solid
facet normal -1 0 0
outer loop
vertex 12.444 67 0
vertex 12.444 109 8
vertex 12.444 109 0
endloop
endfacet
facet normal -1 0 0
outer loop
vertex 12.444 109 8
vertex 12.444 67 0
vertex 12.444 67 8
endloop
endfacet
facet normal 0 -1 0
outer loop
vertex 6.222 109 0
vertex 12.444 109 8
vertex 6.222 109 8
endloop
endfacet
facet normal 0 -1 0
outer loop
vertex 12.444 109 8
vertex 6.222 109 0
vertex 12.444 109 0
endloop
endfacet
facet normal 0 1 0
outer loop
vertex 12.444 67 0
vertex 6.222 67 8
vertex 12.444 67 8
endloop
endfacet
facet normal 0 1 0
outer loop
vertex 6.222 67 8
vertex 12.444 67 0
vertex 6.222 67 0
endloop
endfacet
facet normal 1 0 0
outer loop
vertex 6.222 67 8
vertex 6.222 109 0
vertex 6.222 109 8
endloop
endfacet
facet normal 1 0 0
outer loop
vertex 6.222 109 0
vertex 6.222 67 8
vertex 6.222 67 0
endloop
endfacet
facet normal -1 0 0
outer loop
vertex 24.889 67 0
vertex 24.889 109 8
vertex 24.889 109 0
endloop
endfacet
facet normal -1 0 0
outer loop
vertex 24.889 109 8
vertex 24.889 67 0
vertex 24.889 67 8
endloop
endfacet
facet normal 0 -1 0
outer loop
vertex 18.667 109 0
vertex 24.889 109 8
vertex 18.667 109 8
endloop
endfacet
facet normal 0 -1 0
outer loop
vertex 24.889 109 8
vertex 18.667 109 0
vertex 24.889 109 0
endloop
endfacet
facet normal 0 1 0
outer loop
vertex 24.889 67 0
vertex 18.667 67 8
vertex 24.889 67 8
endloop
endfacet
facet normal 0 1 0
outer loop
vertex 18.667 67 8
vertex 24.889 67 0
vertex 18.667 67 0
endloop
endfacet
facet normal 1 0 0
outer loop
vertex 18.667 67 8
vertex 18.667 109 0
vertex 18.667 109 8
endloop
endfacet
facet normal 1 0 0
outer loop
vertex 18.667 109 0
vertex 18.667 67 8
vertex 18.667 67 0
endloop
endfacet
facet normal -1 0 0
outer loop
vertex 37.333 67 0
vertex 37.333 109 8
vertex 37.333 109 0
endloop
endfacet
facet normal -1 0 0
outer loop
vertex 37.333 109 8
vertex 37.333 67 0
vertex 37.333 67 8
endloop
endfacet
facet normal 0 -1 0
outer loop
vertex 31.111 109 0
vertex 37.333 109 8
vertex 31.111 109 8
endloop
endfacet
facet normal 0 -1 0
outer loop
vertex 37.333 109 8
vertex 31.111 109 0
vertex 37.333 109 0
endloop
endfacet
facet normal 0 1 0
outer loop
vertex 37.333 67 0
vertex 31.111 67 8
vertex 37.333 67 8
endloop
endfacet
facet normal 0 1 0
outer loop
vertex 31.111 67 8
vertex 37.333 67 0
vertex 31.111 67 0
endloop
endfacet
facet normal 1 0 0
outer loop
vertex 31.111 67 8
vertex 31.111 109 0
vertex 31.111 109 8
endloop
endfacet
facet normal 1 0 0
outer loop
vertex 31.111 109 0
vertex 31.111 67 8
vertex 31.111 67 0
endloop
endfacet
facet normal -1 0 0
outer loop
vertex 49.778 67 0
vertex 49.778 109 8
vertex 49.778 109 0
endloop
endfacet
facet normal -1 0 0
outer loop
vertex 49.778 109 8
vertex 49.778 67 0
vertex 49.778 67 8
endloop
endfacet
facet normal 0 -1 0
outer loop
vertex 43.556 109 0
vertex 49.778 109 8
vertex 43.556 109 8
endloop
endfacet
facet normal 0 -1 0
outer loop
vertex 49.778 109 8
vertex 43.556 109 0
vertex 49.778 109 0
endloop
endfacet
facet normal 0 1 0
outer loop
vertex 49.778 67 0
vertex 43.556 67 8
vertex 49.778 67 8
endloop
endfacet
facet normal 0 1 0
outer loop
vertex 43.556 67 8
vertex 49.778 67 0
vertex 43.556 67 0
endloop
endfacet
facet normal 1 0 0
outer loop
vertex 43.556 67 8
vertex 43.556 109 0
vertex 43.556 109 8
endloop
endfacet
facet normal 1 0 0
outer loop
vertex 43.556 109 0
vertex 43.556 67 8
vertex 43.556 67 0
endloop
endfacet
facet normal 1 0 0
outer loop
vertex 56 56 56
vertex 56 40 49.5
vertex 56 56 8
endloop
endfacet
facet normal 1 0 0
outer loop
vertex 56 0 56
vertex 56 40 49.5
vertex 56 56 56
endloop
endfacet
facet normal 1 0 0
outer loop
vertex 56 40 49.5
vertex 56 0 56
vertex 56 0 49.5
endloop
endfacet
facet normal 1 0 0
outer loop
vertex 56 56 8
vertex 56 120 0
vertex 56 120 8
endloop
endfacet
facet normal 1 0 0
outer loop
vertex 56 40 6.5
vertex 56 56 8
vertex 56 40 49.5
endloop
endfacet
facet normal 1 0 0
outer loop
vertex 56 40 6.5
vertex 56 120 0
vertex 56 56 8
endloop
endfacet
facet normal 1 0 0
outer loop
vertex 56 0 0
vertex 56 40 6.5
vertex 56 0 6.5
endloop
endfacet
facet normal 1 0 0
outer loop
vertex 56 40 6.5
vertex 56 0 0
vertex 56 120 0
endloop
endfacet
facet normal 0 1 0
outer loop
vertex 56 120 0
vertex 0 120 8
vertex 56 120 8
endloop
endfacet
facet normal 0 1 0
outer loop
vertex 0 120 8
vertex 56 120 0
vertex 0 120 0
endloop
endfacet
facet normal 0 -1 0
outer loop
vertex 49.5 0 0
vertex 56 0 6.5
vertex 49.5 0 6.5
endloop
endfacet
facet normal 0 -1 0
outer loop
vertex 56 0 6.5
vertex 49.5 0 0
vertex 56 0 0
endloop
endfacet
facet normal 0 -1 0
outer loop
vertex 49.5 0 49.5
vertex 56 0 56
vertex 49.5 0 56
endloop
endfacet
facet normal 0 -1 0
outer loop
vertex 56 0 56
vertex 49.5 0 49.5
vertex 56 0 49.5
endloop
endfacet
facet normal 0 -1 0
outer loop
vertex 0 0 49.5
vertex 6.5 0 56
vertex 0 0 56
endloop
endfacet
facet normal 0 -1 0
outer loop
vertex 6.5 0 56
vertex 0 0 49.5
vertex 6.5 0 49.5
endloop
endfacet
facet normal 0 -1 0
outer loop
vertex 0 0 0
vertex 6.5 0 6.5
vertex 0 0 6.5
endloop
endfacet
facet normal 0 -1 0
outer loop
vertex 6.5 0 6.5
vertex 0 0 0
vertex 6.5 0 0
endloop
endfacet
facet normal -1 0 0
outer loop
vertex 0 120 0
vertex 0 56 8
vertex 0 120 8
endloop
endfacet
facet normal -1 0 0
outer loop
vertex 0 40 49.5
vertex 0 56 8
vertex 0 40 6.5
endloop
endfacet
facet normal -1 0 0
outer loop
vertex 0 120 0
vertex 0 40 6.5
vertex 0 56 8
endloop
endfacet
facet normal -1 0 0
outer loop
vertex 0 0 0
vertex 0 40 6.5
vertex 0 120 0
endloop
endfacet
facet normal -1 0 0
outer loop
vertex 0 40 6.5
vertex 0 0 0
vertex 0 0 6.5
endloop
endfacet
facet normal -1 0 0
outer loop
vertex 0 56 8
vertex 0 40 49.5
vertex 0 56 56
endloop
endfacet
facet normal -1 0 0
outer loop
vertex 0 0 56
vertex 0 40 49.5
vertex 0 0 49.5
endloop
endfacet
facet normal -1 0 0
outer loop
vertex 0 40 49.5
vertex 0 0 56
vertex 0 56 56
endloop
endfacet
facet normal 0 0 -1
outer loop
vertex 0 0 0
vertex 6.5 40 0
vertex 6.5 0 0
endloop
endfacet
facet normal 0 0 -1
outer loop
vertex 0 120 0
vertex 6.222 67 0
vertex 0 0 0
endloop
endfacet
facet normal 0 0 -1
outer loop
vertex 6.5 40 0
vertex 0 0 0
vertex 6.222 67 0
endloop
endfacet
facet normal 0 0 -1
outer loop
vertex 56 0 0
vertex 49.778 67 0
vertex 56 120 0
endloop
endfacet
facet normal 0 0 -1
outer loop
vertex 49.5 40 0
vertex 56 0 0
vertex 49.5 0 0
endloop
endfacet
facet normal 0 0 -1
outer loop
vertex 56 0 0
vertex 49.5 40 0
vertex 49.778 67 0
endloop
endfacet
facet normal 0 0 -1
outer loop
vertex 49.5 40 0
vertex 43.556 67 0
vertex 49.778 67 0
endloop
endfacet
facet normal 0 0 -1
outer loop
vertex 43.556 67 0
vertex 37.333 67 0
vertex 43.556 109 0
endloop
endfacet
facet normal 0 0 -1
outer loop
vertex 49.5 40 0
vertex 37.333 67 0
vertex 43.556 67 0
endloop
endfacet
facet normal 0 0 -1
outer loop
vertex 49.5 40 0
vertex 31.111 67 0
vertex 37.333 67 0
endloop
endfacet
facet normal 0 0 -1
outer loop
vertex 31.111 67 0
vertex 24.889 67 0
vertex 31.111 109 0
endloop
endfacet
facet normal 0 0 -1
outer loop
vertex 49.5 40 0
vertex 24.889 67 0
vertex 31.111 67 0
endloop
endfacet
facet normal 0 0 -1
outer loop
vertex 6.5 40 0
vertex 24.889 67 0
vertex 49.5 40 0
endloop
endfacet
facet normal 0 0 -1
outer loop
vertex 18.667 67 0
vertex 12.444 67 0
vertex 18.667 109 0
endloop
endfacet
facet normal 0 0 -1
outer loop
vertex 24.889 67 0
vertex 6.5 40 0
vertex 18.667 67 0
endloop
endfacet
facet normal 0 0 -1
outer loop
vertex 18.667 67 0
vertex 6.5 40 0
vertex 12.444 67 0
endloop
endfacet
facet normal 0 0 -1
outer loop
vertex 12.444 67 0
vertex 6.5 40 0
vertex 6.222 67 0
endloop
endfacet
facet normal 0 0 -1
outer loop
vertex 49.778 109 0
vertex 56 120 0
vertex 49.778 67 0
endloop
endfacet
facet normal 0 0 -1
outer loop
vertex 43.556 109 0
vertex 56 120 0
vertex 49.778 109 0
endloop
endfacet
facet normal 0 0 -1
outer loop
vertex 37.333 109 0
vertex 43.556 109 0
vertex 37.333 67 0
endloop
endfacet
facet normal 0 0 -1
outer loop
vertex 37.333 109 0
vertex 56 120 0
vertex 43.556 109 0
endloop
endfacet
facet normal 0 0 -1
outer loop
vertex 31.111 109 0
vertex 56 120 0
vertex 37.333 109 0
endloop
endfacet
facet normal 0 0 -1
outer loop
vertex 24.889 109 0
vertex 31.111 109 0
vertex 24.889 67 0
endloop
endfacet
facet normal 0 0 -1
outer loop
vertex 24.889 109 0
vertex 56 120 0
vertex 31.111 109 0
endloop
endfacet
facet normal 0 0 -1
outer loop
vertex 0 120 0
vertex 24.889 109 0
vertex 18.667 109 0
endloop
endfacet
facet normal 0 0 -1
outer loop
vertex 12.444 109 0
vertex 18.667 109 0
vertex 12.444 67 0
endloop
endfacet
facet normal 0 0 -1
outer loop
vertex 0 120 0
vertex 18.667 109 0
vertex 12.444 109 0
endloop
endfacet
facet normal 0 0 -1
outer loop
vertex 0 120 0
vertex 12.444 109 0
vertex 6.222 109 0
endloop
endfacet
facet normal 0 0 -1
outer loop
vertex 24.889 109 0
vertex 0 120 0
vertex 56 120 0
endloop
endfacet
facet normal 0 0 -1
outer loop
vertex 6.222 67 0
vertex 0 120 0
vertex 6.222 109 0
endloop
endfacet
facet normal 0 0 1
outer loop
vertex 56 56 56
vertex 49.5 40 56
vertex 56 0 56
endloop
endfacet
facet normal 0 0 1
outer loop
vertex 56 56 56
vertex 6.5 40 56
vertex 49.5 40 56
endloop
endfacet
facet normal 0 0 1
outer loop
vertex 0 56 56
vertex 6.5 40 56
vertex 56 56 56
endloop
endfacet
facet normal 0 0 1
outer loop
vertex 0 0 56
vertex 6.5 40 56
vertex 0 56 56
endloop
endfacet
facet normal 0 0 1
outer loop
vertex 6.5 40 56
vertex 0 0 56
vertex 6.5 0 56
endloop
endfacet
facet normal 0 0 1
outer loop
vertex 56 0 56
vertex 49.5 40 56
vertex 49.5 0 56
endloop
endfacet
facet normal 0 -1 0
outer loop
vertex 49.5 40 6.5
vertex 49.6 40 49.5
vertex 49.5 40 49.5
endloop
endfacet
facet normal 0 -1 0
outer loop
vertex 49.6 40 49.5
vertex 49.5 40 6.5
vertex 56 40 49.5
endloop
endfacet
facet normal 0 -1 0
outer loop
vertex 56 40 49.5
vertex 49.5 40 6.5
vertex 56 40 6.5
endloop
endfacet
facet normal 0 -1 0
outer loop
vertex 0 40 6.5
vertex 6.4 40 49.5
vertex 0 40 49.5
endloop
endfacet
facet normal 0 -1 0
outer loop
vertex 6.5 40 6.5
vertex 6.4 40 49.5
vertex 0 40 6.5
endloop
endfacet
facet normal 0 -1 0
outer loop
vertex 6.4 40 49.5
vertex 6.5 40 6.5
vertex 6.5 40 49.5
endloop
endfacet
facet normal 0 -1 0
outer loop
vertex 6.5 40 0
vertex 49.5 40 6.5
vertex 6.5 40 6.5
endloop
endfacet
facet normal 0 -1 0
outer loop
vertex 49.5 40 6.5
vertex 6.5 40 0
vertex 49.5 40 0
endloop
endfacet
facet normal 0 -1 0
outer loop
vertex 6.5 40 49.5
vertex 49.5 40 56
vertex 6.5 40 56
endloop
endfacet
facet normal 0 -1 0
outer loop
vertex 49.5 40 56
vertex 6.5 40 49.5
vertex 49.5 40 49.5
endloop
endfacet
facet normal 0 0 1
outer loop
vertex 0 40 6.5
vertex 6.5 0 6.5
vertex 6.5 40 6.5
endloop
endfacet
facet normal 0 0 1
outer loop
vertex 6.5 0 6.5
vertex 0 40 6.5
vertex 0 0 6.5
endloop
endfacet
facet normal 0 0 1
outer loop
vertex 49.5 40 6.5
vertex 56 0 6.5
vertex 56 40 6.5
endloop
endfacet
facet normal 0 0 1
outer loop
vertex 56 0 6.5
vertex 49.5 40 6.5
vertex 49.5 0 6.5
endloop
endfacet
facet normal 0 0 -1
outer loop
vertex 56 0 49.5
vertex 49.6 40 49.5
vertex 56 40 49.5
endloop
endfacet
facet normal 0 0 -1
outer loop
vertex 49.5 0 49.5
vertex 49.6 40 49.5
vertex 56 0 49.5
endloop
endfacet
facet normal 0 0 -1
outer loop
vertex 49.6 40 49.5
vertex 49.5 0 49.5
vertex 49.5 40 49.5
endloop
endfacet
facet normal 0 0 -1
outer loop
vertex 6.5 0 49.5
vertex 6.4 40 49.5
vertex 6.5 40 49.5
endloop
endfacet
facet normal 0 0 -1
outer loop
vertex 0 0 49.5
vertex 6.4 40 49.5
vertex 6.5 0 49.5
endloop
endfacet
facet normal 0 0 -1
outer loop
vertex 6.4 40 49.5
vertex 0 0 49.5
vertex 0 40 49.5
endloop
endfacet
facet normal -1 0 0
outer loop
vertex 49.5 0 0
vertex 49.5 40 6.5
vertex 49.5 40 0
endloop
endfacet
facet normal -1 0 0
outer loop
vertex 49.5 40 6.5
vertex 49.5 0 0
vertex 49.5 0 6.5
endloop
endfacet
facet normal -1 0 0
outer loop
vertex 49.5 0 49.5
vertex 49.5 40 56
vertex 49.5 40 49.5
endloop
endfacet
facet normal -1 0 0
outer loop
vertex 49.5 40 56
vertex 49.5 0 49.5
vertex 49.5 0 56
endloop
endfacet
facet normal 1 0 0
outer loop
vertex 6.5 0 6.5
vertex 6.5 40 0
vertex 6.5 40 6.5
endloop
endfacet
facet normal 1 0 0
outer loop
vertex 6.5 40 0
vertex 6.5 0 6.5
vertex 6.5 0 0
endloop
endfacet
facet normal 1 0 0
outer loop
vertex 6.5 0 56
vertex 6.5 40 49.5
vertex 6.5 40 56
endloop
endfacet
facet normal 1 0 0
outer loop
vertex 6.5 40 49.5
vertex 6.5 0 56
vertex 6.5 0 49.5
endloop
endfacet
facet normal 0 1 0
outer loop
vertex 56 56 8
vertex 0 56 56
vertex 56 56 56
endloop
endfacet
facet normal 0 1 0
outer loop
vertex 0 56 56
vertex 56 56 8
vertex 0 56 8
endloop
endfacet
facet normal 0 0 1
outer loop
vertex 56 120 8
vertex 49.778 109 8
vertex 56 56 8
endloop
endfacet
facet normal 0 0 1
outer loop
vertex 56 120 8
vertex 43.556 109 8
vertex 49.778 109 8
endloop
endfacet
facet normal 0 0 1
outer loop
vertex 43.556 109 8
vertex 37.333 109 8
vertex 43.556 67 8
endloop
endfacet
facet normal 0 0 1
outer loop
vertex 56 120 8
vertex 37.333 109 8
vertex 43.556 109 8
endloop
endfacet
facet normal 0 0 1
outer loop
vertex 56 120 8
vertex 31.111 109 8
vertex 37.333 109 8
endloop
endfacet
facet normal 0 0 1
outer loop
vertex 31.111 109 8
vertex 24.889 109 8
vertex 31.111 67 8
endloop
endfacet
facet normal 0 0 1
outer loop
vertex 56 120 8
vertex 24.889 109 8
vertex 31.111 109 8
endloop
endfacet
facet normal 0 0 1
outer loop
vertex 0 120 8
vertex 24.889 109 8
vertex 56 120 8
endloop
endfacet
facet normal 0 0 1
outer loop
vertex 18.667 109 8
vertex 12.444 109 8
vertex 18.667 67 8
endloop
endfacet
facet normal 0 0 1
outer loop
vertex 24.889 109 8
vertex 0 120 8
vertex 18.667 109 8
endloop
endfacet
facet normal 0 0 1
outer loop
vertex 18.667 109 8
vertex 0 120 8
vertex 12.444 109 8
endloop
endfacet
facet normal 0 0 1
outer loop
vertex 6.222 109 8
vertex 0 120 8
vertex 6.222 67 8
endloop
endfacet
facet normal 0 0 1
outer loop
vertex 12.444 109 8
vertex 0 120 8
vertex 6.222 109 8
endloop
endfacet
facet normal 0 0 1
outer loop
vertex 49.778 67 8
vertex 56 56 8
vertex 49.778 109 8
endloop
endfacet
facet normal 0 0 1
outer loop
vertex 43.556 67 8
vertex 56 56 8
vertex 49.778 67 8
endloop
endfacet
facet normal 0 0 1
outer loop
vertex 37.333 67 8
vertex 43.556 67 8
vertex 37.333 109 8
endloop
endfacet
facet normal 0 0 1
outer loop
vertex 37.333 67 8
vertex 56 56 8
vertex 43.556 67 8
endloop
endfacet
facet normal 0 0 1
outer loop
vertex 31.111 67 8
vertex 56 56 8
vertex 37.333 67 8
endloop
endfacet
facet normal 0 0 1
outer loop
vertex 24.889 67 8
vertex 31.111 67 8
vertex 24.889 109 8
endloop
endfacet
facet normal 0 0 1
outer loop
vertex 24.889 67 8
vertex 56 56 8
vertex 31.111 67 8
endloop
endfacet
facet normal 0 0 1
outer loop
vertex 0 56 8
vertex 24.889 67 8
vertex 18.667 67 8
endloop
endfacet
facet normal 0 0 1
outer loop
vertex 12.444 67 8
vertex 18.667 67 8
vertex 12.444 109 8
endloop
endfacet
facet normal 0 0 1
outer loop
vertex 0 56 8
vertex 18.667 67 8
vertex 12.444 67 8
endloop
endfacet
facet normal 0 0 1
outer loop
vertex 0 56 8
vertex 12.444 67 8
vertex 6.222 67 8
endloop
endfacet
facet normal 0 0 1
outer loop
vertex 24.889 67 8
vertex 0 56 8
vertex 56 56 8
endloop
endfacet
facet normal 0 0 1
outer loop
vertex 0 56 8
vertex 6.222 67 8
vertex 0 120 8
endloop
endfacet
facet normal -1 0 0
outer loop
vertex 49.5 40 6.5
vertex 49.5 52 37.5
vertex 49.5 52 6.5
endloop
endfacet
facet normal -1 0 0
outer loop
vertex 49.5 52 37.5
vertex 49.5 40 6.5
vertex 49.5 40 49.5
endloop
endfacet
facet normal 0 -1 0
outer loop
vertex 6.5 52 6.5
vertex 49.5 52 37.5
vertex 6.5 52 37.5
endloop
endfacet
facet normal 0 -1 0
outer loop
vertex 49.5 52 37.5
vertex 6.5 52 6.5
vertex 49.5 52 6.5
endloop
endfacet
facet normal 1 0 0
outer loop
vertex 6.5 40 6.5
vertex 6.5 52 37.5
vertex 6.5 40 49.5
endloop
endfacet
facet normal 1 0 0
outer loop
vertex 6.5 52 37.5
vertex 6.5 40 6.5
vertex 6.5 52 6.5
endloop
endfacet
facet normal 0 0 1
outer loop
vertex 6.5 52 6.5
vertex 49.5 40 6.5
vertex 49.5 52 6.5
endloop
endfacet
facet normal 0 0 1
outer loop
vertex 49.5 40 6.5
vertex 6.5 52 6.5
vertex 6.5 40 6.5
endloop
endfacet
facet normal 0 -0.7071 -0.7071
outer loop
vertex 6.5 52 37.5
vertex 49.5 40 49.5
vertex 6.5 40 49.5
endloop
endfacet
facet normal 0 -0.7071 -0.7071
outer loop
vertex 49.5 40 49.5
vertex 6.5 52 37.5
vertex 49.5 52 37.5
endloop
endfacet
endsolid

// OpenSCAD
/* [Dimensions] */
// width of the entire chair when viewed from the front
width = 56;
// depth of the entire chair, including the back
depth = 56;
// height of the back above the seat
backHeight = 64;
// thickness of the back
backDepth = 8;
// height of the legs
legHeight = 40;
// thickness of legs
legThickness = 6.5;
// thickness of seat, as viewed from outside
seatHeight = 16;
// height of hole in underside of seat
seatCavityHeight = 12;

/* [Back Slats] */
// put a hole in the back
backSlats = true;
// how high the hole should be (centered)
backHoleHeight = 42;
// how many vertical slats in the hole
numBackSlats = 3;

/* [Printing Aids] */
// lay the model flat on the print bed
layFlat = true;
// include a 45° bevel to avoid cavity support
frontHoleBevel = true;

/* [Hidden] */
backHoleWidth = width / (numBackSlats * 2 + 3);

translate([0, 0, layFlat ? depth : 0])
rotate([layFlat ? -90 : 0, 0, 0])
union() {
  difference() {
    // cube the size of the whole chair
    cube([width, depth, backHeight + legHeight + seatHeight]);
    
    // cut x-axis hole through the legs
    translate([-1, legThickness, -1])
      cube([ width + 2, depth - legThickness * 2, legHeight + 1]);
    
    // cut y-axis hole through the legs
    translate([legThickness, -1, -1])
      cube([ width - legThickness * 2, depth + 2, legHeight + 1]);
    
    // cut hole defining seat vs back
    translate([-1, -1, legHeight + seatHeight])
      cube([width + 2, depth - backDepth + 1, backHeight + 1]);
    
    // cut out the under-the-seat cavity
    translate([legThickness, legThickness, legHeight - 1])
      cube([
        width - legThickness * 2,
        depth - legThickness * 2,
        seatCavityHeight + 1
      ]);
    
    if (backSlats) {
      for (i = [0:numBackSlats]) {
        // holes between the back slats
        translate([
          (i * 2 + 1) * backHoleWidth,
          depth - backDepth - 1,
          legHeight + seatHeight + (backHeight - backHoleHeight) / 2
        ]) cube([backHoleWidth, backDepth + 2, backHoleHeight]);
      }
    }
  }
  
  if (frontHoleBevel) {
    // prism to bevel the front edge of the seat cavity
    // (which would otherwise need support)
    translate([legThickness - 0.1, legThickness, legHeight + seatCavityHeight])
    rotate([0, 90, 0])
    linear_extrude(width - legThickness * 2 + 0.2)
      polygon([[0, 0], [seatCavityHeight, 0], [0, seatCavityHeight]]);
  }
}
